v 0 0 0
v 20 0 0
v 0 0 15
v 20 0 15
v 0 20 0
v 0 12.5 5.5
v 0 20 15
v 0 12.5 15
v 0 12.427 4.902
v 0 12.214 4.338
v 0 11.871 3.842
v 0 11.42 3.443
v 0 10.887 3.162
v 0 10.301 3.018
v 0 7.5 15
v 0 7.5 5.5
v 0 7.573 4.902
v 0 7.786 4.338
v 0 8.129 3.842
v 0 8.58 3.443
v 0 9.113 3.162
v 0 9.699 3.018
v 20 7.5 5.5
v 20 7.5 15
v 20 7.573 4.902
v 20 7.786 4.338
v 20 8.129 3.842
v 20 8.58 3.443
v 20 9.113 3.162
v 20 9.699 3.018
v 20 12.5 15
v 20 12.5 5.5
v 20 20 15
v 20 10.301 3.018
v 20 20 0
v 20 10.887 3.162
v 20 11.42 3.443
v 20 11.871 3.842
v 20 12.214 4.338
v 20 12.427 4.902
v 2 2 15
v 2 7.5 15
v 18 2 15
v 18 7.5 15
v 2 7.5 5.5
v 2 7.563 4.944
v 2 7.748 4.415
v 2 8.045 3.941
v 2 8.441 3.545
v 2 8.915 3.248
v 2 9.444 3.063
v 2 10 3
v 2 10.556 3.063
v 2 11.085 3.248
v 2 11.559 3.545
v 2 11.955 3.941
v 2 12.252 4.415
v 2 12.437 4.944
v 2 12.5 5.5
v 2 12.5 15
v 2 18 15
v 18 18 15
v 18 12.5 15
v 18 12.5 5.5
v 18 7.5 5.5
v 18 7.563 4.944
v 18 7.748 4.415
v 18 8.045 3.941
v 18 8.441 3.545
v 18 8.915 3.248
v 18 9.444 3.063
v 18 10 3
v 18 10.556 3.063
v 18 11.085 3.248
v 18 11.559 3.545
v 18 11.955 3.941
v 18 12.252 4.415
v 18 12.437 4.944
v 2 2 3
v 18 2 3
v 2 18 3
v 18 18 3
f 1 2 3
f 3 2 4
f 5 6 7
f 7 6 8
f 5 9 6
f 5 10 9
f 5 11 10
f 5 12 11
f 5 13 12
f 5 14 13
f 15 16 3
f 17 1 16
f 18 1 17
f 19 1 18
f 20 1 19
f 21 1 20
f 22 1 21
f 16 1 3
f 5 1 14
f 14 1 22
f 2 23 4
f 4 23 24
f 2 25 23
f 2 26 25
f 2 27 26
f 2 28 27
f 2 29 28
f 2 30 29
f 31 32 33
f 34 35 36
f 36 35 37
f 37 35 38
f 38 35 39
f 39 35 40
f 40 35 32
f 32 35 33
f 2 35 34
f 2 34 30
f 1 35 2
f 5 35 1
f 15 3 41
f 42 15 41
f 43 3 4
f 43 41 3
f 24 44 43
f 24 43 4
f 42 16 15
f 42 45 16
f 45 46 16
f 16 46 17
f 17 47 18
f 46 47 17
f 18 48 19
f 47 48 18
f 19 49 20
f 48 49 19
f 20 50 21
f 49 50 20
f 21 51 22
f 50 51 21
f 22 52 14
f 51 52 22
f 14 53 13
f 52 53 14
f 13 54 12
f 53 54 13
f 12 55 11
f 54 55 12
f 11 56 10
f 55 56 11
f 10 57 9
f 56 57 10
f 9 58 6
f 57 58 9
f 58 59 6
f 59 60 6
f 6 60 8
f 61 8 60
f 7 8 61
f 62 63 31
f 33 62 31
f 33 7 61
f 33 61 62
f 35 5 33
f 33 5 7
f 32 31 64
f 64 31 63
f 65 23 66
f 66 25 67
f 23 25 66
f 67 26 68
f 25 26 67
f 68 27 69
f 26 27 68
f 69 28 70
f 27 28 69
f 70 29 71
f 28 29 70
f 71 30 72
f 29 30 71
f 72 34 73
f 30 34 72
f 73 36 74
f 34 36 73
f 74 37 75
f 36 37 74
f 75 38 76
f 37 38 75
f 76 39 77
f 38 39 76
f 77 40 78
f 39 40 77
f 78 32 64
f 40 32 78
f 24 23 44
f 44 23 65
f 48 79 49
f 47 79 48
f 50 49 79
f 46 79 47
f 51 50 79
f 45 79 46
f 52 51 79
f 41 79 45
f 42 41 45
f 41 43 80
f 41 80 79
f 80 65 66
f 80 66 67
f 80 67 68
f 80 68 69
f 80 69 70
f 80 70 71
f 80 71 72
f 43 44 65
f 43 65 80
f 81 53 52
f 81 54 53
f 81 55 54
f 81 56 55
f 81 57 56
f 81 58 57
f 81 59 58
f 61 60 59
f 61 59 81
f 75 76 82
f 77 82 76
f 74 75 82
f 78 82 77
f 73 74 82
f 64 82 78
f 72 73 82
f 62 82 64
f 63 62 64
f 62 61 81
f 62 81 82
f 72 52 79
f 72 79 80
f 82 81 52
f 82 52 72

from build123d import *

# Parameters (mm, degrees)
SKETCH_W        = 20
SKETCH_H        = 20
PAD_DEPTH       = 15
SKETCH001_W     = 16
SKETCH001_H     = 16
POCKET_DEPTH    = 12
POCKET001_DEPTH = 20


with BuildPart() as part:
    # Sketch → Pad (new body)
    with BuildSketch(Plane.XY):
        with Locations((10, 10)):
            Rectangle(SKETCH_W, SKETCH_H)
    extrude(amount=PAD_DEPTH)

    # Sketch001 (on Face6 of Pad) → Pocket (cut)
    with BuildSketch(Plane.XY.offset(15)):
        with Locations((10, 10)):
            Rectangle(SKETCH001_W, SKETCH001_H)
    extrude(amount=-POCKET_DEPTH, mode=Mode.SUBTRACT)

    # Sketch002 (on Face3 of Pocket) → Pocket001 (cut)
    with BuildSketch(Plane.YZ.offset(20)):
        with BuildLine():
            ThreePointArc((12.5, 15.5), (10, 18), (7.5, 15.5))
            Line((7.5, 15.5), (7.5, 5.5))
            ThreePointArc((7.5, 5.5), (10, 3), (12.5, 5.5))
            Line((12.5, 5.5), (12.5, 15.5))
        make_face()
    extrude(amount=-POCKET001_DEPTH, mode=Mode.SUBTRACT)


solid = part.part
